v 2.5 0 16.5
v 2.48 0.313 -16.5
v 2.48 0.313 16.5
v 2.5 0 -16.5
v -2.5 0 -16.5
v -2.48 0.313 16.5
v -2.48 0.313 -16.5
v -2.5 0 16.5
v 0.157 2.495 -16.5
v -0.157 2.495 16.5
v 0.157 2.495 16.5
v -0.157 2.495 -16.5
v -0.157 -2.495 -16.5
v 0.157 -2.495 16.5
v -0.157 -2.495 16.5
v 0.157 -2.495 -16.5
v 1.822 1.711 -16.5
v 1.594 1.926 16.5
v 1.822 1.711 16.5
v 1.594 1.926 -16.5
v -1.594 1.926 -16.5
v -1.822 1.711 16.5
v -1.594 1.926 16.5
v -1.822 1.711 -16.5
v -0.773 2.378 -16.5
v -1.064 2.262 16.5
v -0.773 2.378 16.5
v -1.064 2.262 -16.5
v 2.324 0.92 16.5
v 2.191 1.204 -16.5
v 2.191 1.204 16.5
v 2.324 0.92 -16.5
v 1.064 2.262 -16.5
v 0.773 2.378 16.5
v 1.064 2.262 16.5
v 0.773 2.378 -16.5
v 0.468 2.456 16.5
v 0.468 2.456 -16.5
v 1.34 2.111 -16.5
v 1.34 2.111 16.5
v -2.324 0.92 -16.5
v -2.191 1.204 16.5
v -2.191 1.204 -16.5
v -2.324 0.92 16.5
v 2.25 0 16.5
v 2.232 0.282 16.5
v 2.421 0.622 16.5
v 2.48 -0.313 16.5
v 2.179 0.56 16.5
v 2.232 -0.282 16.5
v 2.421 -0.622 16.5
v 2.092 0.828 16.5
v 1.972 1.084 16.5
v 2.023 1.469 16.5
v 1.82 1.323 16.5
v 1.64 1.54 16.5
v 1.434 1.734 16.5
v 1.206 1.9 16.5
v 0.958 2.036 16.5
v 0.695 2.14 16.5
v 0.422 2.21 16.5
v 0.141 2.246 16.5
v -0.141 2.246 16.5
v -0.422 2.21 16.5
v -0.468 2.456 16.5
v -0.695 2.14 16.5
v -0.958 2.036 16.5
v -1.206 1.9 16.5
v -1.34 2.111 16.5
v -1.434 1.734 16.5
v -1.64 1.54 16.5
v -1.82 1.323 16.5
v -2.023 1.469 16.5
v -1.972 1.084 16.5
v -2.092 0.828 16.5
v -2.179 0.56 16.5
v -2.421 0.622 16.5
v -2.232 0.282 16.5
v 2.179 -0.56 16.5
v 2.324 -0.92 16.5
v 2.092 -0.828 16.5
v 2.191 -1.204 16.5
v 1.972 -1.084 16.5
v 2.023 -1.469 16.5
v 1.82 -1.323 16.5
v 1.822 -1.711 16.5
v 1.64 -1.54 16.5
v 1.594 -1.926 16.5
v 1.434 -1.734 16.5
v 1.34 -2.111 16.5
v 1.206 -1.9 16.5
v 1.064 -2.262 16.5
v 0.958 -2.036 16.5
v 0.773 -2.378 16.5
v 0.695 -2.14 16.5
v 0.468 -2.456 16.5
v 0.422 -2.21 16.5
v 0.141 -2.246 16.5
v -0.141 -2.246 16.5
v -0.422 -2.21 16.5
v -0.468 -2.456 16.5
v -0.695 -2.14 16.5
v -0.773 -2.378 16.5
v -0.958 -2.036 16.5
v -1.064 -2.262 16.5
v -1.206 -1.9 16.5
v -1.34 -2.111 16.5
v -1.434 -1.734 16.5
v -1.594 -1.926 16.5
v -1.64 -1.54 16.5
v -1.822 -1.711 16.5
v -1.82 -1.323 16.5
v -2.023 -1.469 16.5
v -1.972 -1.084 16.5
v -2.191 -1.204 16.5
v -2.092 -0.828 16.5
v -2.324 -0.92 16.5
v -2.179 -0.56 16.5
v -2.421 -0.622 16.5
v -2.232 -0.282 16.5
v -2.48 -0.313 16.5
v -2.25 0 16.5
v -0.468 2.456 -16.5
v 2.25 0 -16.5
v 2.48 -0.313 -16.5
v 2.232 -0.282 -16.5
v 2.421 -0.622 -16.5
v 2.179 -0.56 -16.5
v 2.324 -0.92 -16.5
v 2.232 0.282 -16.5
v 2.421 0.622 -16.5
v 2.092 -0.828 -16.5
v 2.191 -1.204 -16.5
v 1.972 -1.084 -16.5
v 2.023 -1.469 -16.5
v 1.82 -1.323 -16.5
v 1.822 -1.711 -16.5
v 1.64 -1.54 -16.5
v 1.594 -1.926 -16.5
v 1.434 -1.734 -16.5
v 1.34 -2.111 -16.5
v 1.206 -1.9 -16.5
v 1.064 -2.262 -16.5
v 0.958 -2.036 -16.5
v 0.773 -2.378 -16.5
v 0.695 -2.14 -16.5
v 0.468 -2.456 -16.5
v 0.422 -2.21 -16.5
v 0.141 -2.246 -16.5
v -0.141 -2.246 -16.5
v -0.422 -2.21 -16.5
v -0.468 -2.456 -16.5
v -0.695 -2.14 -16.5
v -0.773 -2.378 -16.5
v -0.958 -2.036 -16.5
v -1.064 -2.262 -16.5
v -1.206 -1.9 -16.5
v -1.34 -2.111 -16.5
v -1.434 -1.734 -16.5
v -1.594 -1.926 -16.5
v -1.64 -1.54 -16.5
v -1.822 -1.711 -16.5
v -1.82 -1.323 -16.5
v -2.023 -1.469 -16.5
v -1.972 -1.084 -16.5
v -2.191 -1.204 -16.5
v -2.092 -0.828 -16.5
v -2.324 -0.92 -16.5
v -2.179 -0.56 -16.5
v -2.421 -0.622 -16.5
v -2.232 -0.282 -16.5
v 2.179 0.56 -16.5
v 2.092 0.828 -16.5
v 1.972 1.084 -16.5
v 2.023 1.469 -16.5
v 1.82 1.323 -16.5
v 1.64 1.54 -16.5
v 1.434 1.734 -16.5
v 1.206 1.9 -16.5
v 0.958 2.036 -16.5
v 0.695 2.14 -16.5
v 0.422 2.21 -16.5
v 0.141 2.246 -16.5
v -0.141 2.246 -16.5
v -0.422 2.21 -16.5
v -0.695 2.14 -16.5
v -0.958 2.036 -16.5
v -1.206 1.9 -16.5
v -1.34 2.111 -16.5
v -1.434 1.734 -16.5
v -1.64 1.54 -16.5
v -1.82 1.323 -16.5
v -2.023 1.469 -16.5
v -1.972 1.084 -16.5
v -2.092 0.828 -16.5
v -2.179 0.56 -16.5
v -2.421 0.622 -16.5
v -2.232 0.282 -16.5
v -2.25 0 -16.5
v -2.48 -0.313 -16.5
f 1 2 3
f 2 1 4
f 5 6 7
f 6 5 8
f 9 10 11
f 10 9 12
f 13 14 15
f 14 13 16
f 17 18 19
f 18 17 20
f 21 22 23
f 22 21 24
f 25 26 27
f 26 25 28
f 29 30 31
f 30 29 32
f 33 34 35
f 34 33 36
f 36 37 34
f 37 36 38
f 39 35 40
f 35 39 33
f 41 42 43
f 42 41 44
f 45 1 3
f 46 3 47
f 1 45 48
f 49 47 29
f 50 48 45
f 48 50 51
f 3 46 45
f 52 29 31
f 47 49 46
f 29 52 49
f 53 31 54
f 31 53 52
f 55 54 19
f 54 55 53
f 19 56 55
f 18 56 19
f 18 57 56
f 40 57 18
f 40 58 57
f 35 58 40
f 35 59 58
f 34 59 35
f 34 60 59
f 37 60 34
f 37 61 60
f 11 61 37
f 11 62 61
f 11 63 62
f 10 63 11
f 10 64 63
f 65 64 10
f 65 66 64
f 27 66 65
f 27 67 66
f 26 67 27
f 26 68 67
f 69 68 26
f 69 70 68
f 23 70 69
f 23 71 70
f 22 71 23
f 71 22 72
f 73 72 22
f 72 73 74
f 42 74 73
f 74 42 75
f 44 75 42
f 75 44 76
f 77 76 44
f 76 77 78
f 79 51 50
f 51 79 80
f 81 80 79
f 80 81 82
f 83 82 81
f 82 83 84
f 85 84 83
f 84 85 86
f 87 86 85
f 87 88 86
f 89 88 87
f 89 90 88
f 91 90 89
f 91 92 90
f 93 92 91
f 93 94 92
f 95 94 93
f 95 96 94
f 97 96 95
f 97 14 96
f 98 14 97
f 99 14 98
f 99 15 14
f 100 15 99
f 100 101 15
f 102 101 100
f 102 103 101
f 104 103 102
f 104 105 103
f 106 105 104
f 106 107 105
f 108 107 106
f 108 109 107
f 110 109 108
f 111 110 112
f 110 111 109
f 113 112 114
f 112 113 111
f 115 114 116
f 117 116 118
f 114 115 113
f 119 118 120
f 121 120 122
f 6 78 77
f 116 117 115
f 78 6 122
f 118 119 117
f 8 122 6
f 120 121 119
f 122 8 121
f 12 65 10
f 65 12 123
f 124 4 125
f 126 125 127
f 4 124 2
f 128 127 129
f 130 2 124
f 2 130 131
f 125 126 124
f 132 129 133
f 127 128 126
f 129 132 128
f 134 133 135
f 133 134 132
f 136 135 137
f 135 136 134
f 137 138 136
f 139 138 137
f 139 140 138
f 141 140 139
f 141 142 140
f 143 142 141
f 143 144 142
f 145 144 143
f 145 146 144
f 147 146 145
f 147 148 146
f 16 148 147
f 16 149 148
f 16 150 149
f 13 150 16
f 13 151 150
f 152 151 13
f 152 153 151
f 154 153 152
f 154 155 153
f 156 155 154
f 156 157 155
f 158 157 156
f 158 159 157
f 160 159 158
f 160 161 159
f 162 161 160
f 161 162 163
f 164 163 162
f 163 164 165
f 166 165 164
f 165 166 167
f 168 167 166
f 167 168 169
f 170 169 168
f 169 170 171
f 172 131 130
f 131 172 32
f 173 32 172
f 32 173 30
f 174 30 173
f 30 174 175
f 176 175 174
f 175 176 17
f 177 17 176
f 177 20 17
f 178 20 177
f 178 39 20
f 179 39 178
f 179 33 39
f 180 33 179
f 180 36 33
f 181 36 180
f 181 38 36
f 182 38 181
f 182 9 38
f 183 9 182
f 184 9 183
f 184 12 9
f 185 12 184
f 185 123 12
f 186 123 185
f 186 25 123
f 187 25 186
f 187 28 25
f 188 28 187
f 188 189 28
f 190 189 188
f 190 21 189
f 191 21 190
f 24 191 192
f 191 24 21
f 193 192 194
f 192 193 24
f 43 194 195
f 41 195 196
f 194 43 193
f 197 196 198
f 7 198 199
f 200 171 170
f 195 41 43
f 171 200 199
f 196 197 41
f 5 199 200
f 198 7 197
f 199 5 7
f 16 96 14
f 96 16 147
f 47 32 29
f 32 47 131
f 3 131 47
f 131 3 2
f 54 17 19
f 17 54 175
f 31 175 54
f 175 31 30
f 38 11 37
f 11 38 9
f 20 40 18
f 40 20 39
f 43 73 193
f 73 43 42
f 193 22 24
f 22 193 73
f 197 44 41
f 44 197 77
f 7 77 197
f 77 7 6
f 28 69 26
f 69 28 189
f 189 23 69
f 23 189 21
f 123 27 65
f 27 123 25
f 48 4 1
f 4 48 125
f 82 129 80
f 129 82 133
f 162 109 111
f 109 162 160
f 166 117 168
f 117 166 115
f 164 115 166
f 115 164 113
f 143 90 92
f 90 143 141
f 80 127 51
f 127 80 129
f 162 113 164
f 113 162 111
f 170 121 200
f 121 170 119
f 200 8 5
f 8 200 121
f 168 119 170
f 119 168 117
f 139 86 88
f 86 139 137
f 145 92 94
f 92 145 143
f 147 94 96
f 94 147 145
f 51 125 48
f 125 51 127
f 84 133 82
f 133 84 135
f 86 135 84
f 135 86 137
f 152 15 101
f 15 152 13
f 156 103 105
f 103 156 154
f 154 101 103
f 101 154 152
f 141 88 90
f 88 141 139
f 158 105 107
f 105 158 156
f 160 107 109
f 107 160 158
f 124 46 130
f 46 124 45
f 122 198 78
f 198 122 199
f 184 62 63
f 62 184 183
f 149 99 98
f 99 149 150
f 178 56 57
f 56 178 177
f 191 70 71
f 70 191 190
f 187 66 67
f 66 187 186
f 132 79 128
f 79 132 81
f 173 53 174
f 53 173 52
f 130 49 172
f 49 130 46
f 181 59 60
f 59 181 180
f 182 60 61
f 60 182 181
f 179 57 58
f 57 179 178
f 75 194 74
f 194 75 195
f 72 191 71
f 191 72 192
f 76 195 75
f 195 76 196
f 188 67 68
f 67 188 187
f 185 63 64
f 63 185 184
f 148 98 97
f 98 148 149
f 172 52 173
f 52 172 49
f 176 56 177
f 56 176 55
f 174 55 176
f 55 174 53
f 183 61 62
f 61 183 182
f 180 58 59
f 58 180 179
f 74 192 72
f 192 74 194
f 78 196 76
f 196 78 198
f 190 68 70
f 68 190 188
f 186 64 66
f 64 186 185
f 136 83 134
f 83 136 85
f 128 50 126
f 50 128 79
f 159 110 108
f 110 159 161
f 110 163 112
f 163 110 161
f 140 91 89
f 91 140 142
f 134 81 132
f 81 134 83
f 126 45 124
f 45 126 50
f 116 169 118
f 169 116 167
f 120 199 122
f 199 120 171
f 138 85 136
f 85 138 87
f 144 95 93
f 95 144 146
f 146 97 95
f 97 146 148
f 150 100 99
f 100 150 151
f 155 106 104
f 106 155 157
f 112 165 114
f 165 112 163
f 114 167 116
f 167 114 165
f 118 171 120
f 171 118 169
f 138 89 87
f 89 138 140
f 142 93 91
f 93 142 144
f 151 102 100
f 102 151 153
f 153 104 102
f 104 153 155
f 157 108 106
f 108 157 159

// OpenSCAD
$fn = 50;


difference() {
	union() {
		translate(v = [0, 0, -16.5000000000]) {
			cylinder(h = 33, r = 2.5000000000);
		}
	}
	union() {
		translate(v = [0, 0, -100.0000000000]) {
			cylinder(h = 200, r = 2.2500000000);
		}
	}
}
